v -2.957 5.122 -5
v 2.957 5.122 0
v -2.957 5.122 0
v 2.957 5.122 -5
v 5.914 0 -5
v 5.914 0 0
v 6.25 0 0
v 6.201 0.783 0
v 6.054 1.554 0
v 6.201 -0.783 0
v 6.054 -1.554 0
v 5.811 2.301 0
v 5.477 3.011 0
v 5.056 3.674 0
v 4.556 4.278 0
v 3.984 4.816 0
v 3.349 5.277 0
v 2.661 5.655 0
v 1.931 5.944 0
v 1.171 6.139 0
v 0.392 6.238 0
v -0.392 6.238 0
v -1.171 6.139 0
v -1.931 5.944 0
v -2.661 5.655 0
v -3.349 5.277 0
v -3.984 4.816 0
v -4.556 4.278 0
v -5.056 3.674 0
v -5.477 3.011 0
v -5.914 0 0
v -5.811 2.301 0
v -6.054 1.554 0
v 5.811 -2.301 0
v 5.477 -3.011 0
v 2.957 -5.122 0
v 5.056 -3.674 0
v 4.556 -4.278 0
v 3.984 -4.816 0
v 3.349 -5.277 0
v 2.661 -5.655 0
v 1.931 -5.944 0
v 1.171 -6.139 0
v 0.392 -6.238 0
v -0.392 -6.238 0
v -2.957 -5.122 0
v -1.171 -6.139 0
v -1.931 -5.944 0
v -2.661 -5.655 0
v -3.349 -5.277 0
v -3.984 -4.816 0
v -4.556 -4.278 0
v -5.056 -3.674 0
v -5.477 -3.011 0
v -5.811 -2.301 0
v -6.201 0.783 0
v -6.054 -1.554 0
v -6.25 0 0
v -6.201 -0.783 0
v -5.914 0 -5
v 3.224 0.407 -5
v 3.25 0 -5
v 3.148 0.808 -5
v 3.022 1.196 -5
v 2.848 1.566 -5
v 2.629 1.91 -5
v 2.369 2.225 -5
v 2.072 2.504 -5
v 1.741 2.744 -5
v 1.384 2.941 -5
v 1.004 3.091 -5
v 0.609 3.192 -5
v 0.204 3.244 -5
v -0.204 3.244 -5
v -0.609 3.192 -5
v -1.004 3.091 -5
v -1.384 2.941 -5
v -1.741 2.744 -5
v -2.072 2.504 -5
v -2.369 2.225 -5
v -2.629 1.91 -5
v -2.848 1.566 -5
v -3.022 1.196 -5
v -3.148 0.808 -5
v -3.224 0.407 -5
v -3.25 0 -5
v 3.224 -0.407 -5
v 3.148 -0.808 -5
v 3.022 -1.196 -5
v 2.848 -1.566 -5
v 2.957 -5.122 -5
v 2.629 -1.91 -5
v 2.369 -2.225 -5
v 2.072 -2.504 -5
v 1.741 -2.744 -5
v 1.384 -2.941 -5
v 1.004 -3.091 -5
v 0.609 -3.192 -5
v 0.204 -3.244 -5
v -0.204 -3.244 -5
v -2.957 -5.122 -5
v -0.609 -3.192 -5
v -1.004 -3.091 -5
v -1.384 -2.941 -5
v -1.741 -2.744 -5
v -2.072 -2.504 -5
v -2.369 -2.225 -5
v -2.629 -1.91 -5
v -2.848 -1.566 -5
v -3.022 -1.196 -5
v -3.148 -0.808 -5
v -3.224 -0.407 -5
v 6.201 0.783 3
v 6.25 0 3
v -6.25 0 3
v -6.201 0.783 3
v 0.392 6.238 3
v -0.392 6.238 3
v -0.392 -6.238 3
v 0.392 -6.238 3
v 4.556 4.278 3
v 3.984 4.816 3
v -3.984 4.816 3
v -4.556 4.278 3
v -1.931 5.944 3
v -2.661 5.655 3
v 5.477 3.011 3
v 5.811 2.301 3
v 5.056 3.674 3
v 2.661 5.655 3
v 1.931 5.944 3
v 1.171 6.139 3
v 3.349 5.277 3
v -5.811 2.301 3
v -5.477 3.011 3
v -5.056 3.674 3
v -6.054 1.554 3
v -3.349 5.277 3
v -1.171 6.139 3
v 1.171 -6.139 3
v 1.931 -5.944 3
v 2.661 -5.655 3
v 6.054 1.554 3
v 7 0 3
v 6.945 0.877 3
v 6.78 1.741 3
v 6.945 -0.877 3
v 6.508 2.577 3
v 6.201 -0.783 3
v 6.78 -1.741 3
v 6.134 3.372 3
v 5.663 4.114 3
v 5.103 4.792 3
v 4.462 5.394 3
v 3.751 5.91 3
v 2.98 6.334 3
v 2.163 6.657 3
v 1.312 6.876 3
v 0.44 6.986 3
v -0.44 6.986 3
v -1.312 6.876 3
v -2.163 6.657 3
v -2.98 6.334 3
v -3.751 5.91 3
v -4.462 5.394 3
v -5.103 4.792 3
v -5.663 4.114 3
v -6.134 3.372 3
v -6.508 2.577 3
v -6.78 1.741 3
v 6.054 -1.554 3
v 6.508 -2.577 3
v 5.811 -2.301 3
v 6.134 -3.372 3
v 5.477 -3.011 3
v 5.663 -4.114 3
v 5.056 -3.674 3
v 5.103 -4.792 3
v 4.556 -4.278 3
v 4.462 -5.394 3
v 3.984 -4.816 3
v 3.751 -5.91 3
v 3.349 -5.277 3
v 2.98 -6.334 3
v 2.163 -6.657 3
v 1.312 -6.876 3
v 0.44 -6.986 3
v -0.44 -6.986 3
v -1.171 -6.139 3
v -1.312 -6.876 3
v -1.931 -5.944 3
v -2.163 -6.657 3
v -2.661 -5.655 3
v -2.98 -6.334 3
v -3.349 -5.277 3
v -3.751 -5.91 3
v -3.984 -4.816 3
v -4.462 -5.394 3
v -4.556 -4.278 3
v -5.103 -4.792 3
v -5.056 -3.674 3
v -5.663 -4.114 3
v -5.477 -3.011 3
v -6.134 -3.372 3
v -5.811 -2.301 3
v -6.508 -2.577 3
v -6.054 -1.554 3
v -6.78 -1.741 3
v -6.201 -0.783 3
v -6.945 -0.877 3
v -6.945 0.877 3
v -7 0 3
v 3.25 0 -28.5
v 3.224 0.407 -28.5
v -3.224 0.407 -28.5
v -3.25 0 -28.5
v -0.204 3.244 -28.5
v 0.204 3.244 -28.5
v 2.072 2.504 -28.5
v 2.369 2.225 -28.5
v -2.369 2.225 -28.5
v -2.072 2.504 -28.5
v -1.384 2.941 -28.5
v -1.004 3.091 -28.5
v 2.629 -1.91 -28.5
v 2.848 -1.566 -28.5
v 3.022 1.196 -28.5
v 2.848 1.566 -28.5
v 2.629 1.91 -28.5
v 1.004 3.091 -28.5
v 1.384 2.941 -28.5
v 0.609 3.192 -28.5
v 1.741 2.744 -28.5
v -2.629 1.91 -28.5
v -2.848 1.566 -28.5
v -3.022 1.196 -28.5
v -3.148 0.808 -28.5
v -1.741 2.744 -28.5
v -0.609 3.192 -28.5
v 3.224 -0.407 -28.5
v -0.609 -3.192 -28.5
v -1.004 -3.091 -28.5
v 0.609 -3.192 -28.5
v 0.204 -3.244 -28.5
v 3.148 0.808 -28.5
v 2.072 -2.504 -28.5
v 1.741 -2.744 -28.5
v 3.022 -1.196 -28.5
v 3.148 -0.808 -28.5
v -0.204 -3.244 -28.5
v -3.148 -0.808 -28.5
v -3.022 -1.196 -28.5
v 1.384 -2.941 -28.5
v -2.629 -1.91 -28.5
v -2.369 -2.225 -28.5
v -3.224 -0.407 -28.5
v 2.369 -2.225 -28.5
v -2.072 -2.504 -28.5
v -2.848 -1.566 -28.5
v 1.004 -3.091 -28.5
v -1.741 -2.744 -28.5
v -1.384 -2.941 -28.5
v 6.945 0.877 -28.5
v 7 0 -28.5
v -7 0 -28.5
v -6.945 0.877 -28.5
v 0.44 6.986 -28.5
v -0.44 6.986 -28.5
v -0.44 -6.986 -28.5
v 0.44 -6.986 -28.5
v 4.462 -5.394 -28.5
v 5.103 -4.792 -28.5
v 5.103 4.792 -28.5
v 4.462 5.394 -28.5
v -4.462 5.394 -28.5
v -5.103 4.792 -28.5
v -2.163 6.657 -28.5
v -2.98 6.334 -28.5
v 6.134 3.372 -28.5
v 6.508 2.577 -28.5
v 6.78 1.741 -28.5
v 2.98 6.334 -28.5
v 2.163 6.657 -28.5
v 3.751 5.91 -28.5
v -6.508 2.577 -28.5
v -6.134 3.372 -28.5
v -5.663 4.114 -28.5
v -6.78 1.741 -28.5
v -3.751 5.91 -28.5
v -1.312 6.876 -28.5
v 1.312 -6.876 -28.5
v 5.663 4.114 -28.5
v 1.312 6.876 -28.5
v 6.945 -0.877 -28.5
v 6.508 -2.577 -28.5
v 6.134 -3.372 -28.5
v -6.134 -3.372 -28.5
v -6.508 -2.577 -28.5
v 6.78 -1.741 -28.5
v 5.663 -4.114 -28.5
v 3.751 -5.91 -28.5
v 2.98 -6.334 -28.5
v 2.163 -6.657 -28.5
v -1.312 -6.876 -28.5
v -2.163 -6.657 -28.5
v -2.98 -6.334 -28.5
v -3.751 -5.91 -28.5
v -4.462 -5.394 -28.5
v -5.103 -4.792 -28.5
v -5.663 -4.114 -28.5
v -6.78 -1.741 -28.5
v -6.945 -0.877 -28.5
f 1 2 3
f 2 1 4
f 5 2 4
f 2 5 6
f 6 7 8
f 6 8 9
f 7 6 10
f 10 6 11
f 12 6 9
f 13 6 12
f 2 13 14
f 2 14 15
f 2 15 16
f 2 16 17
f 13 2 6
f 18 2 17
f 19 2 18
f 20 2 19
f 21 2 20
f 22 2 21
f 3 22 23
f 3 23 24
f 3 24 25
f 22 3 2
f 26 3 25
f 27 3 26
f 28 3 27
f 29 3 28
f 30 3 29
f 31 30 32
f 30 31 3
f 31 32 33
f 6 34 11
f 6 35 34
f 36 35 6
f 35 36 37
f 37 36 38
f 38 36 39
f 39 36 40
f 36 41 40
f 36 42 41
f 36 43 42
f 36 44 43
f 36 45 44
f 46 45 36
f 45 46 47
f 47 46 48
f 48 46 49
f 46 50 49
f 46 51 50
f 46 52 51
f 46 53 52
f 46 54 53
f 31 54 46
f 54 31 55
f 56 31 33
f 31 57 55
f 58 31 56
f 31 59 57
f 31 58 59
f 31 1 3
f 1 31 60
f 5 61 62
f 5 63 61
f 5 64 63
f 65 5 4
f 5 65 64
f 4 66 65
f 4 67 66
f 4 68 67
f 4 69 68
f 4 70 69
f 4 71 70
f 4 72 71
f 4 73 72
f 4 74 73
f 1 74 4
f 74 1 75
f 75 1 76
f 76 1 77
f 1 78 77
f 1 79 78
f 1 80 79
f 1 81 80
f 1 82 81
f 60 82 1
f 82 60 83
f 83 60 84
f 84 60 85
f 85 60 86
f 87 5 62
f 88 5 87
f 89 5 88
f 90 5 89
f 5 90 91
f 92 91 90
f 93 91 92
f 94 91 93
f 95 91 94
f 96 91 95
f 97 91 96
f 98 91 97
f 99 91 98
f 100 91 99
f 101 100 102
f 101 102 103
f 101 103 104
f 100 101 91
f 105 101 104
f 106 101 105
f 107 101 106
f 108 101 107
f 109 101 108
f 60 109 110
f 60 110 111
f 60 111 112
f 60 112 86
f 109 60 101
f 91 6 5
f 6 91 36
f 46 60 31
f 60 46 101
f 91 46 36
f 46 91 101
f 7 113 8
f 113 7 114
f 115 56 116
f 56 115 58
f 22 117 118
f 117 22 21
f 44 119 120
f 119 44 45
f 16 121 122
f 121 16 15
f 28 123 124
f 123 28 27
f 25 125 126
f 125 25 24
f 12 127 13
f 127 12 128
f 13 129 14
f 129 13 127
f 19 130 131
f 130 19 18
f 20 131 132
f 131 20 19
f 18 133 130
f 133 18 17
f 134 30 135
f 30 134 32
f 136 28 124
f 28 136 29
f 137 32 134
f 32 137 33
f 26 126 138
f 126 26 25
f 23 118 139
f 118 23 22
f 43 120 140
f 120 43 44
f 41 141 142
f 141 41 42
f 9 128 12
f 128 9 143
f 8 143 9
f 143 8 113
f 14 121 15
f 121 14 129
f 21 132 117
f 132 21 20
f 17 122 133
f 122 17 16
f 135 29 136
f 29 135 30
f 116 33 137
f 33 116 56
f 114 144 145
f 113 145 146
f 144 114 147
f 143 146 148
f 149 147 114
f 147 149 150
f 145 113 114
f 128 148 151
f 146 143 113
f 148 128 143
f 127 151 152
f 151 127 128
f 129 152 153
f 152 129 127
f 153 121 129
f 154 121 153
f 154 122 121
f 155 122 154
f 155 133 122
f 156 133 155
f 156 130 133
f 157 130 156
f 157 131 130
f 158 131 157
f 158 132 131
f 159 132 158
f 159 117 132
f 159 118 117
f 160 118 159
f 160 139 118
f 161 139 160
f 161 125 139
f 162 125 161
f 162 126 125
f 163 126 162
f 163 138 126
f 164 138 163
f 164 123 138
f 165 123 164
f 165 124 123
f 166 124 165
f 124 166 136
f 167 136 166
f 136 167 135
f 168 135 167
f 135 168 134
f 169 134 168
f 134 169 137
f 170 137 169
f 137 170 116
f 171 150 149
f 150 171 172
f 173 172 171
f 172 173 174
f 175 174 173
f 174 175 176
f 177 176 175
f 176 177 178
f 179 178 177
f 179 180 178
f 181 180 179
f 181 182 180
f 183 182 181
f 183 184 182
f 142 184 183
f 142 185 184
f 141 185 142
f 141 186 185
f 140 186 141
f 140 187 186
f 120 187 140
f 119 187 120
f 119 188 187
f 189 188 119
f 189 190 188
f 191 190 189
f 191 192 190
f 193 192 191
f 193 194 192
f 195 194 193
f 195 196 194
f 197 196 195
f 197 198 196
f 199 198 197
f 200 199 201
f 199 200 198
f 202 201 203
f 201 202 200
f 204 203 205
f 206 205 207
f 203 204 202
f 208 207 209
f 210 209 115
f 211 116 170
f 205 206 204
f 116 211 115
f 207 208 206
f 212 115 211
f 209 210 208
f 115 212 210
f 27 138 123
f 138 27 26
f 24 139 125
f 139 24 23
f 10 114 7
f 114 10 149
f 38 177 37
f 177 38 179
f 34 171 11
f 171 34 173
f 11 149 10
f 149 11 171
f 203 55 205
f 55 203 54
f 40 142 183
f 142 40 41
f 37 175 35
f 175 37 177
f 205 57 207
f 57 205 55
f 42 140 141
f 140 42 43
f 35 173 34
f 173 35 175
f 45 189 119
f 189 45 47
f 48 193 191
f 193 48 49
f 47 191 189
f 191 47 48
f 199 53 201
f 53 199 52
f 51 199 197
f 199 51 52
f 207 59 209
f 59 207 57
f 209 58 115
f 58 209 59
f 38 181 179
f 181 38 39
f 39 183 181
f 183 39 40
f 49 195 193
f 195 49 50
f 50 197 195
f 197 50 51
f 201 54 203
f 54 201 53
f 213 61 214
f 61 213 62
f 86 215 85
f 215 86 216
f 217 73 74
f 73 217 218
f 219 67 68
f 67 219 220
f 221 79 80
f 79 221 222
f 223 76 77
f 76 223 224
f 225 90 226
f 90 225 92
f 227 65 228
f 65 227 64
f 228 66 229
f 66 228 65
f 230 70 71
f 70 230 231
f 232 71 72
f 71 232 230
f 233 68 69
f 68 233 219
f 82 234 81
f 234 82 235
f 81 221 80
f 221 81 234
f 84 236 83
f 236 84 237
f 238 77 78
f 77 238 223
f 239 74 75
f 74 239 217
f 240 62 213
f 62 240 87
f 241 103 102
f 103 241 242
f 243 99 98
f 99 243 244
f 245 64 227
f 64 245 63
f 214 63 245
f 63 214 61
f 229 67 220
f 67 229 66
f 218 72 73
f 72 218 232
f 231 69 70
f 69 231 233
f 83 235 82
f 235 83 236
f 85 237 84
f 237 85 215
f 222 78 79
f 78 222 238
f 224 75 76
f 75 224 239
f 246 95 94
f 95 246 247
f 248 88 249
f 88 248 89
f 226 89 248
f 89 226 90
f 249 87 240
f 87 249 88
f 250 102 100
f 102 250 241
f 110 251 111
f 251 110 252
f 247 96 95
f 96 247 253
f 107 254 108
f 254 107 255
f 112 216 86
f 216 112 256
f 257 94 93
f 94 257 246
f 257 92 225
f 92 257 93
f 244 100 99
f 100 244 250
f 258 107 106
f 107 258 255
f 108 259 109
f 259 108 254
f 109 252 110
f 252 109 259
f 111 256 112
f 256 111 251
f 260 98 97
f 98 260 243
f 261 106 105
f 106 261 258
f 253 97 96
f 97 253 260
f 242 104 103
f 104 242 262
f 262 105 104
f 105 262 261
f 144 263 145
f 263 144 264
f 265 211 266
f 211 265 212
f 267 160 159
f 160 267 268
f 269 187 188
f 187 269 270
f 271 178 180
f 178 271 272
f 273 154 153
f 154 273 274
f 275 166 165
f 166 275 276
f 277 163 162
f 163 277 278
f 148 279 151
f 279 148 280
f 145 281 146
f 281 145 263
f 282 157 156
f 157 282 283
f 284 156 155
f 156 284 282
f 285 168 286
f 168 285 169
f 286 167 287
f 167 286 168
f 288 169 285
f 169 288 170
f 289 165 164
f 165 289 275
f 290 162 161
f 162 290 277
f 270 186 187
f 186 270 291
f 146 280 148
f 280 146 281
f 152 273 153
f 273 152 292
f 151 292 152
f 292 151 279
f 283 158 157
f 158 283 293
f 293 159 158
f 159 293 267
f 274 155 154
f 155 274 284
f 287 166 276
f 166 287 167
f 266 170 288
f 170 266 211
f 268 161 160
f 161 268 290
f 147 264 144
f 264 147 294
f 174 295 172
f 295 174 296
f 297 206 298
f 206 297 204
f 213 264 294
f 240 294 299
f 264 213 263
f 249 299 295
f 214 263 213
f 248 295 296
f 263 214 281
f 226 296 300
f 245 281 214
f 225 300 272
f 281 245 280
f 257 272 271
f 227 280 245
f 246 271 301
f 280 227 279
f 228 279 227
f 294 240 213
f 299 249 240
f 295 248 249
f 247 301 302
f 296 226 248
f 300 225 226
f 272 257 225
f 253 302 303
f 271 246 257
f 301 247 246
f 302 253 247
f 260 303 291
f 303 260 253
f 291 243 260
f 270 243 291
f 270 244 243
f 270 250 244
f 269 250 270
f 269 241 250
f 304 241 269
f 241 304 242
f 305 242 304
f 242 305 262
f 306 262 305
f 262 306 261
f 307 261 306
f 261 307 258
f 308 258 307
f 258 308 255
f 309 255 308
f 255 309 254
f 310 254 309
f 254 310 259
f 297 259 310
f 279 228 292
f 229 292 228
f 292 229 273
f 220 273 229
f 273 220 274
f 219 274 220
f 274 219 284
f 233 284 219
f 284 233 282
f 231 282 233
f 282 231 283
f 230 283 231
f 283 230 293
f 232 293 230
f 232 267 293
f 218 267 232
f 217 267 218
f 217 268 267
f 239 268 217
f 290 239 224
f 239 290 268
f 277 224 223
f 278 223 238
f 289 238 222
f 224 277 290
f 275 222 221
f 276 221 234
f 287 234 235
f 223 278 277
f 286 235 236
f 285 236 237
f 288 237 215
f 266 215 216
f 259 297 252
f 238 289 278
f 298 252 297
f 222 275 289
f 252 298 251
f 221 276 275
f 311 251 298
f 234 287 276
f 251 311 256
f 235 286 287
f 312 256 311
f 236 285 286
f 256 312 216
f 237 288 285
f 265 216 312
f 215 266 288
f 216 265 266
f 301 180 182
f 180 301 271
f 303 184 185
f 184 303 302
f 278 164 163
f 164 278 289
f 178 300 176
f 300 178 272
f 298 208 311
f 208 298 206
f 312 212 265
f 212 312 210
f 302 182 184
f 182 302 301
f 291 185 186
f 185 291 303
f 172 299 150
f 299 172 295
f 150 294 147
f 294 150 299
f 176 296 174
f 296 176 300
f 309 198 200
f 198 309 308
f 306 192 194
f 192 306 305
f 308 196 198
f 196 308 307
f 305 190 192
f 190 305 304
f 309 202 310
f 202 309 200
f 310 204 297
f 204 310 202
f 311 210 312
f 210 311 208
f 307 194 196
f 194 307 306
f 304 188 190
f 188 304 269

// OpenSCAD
$fn = 50;


difference() {
	union() {
		translate(v = [0, 0, -28.5000000000]) {
			cylinder(h = 31.5000000000, r = 7.0000000000);
		}
	}
	union() {
		translate(v = [0, 0, 0]) {
			rotate(a = [0, 0, 0]) {
				difference() {
					union() {
						translate(v = [0, 0, -5]) {
							linear_extrude(height = 5) {
								polygon(points = [[5.9142500000, 0.0000000000], [2.9571250000, 5.1218907443], [-2.9571250000, 5.1218907443], [-5.9142500000, 0.0000000000], [-2.9571250000, -5.1218907443], [2.9571250000, -5.1218907443]]);
							}
						}
					}
					union();
				}
			}
		}
		#cylinder(h = 3, r = 6.2500000000);
		#translate(v = [0, 0, -100.0000000000]) {
			cylinder(h = 200, r = 3.2500000000);
		}
	}
}
